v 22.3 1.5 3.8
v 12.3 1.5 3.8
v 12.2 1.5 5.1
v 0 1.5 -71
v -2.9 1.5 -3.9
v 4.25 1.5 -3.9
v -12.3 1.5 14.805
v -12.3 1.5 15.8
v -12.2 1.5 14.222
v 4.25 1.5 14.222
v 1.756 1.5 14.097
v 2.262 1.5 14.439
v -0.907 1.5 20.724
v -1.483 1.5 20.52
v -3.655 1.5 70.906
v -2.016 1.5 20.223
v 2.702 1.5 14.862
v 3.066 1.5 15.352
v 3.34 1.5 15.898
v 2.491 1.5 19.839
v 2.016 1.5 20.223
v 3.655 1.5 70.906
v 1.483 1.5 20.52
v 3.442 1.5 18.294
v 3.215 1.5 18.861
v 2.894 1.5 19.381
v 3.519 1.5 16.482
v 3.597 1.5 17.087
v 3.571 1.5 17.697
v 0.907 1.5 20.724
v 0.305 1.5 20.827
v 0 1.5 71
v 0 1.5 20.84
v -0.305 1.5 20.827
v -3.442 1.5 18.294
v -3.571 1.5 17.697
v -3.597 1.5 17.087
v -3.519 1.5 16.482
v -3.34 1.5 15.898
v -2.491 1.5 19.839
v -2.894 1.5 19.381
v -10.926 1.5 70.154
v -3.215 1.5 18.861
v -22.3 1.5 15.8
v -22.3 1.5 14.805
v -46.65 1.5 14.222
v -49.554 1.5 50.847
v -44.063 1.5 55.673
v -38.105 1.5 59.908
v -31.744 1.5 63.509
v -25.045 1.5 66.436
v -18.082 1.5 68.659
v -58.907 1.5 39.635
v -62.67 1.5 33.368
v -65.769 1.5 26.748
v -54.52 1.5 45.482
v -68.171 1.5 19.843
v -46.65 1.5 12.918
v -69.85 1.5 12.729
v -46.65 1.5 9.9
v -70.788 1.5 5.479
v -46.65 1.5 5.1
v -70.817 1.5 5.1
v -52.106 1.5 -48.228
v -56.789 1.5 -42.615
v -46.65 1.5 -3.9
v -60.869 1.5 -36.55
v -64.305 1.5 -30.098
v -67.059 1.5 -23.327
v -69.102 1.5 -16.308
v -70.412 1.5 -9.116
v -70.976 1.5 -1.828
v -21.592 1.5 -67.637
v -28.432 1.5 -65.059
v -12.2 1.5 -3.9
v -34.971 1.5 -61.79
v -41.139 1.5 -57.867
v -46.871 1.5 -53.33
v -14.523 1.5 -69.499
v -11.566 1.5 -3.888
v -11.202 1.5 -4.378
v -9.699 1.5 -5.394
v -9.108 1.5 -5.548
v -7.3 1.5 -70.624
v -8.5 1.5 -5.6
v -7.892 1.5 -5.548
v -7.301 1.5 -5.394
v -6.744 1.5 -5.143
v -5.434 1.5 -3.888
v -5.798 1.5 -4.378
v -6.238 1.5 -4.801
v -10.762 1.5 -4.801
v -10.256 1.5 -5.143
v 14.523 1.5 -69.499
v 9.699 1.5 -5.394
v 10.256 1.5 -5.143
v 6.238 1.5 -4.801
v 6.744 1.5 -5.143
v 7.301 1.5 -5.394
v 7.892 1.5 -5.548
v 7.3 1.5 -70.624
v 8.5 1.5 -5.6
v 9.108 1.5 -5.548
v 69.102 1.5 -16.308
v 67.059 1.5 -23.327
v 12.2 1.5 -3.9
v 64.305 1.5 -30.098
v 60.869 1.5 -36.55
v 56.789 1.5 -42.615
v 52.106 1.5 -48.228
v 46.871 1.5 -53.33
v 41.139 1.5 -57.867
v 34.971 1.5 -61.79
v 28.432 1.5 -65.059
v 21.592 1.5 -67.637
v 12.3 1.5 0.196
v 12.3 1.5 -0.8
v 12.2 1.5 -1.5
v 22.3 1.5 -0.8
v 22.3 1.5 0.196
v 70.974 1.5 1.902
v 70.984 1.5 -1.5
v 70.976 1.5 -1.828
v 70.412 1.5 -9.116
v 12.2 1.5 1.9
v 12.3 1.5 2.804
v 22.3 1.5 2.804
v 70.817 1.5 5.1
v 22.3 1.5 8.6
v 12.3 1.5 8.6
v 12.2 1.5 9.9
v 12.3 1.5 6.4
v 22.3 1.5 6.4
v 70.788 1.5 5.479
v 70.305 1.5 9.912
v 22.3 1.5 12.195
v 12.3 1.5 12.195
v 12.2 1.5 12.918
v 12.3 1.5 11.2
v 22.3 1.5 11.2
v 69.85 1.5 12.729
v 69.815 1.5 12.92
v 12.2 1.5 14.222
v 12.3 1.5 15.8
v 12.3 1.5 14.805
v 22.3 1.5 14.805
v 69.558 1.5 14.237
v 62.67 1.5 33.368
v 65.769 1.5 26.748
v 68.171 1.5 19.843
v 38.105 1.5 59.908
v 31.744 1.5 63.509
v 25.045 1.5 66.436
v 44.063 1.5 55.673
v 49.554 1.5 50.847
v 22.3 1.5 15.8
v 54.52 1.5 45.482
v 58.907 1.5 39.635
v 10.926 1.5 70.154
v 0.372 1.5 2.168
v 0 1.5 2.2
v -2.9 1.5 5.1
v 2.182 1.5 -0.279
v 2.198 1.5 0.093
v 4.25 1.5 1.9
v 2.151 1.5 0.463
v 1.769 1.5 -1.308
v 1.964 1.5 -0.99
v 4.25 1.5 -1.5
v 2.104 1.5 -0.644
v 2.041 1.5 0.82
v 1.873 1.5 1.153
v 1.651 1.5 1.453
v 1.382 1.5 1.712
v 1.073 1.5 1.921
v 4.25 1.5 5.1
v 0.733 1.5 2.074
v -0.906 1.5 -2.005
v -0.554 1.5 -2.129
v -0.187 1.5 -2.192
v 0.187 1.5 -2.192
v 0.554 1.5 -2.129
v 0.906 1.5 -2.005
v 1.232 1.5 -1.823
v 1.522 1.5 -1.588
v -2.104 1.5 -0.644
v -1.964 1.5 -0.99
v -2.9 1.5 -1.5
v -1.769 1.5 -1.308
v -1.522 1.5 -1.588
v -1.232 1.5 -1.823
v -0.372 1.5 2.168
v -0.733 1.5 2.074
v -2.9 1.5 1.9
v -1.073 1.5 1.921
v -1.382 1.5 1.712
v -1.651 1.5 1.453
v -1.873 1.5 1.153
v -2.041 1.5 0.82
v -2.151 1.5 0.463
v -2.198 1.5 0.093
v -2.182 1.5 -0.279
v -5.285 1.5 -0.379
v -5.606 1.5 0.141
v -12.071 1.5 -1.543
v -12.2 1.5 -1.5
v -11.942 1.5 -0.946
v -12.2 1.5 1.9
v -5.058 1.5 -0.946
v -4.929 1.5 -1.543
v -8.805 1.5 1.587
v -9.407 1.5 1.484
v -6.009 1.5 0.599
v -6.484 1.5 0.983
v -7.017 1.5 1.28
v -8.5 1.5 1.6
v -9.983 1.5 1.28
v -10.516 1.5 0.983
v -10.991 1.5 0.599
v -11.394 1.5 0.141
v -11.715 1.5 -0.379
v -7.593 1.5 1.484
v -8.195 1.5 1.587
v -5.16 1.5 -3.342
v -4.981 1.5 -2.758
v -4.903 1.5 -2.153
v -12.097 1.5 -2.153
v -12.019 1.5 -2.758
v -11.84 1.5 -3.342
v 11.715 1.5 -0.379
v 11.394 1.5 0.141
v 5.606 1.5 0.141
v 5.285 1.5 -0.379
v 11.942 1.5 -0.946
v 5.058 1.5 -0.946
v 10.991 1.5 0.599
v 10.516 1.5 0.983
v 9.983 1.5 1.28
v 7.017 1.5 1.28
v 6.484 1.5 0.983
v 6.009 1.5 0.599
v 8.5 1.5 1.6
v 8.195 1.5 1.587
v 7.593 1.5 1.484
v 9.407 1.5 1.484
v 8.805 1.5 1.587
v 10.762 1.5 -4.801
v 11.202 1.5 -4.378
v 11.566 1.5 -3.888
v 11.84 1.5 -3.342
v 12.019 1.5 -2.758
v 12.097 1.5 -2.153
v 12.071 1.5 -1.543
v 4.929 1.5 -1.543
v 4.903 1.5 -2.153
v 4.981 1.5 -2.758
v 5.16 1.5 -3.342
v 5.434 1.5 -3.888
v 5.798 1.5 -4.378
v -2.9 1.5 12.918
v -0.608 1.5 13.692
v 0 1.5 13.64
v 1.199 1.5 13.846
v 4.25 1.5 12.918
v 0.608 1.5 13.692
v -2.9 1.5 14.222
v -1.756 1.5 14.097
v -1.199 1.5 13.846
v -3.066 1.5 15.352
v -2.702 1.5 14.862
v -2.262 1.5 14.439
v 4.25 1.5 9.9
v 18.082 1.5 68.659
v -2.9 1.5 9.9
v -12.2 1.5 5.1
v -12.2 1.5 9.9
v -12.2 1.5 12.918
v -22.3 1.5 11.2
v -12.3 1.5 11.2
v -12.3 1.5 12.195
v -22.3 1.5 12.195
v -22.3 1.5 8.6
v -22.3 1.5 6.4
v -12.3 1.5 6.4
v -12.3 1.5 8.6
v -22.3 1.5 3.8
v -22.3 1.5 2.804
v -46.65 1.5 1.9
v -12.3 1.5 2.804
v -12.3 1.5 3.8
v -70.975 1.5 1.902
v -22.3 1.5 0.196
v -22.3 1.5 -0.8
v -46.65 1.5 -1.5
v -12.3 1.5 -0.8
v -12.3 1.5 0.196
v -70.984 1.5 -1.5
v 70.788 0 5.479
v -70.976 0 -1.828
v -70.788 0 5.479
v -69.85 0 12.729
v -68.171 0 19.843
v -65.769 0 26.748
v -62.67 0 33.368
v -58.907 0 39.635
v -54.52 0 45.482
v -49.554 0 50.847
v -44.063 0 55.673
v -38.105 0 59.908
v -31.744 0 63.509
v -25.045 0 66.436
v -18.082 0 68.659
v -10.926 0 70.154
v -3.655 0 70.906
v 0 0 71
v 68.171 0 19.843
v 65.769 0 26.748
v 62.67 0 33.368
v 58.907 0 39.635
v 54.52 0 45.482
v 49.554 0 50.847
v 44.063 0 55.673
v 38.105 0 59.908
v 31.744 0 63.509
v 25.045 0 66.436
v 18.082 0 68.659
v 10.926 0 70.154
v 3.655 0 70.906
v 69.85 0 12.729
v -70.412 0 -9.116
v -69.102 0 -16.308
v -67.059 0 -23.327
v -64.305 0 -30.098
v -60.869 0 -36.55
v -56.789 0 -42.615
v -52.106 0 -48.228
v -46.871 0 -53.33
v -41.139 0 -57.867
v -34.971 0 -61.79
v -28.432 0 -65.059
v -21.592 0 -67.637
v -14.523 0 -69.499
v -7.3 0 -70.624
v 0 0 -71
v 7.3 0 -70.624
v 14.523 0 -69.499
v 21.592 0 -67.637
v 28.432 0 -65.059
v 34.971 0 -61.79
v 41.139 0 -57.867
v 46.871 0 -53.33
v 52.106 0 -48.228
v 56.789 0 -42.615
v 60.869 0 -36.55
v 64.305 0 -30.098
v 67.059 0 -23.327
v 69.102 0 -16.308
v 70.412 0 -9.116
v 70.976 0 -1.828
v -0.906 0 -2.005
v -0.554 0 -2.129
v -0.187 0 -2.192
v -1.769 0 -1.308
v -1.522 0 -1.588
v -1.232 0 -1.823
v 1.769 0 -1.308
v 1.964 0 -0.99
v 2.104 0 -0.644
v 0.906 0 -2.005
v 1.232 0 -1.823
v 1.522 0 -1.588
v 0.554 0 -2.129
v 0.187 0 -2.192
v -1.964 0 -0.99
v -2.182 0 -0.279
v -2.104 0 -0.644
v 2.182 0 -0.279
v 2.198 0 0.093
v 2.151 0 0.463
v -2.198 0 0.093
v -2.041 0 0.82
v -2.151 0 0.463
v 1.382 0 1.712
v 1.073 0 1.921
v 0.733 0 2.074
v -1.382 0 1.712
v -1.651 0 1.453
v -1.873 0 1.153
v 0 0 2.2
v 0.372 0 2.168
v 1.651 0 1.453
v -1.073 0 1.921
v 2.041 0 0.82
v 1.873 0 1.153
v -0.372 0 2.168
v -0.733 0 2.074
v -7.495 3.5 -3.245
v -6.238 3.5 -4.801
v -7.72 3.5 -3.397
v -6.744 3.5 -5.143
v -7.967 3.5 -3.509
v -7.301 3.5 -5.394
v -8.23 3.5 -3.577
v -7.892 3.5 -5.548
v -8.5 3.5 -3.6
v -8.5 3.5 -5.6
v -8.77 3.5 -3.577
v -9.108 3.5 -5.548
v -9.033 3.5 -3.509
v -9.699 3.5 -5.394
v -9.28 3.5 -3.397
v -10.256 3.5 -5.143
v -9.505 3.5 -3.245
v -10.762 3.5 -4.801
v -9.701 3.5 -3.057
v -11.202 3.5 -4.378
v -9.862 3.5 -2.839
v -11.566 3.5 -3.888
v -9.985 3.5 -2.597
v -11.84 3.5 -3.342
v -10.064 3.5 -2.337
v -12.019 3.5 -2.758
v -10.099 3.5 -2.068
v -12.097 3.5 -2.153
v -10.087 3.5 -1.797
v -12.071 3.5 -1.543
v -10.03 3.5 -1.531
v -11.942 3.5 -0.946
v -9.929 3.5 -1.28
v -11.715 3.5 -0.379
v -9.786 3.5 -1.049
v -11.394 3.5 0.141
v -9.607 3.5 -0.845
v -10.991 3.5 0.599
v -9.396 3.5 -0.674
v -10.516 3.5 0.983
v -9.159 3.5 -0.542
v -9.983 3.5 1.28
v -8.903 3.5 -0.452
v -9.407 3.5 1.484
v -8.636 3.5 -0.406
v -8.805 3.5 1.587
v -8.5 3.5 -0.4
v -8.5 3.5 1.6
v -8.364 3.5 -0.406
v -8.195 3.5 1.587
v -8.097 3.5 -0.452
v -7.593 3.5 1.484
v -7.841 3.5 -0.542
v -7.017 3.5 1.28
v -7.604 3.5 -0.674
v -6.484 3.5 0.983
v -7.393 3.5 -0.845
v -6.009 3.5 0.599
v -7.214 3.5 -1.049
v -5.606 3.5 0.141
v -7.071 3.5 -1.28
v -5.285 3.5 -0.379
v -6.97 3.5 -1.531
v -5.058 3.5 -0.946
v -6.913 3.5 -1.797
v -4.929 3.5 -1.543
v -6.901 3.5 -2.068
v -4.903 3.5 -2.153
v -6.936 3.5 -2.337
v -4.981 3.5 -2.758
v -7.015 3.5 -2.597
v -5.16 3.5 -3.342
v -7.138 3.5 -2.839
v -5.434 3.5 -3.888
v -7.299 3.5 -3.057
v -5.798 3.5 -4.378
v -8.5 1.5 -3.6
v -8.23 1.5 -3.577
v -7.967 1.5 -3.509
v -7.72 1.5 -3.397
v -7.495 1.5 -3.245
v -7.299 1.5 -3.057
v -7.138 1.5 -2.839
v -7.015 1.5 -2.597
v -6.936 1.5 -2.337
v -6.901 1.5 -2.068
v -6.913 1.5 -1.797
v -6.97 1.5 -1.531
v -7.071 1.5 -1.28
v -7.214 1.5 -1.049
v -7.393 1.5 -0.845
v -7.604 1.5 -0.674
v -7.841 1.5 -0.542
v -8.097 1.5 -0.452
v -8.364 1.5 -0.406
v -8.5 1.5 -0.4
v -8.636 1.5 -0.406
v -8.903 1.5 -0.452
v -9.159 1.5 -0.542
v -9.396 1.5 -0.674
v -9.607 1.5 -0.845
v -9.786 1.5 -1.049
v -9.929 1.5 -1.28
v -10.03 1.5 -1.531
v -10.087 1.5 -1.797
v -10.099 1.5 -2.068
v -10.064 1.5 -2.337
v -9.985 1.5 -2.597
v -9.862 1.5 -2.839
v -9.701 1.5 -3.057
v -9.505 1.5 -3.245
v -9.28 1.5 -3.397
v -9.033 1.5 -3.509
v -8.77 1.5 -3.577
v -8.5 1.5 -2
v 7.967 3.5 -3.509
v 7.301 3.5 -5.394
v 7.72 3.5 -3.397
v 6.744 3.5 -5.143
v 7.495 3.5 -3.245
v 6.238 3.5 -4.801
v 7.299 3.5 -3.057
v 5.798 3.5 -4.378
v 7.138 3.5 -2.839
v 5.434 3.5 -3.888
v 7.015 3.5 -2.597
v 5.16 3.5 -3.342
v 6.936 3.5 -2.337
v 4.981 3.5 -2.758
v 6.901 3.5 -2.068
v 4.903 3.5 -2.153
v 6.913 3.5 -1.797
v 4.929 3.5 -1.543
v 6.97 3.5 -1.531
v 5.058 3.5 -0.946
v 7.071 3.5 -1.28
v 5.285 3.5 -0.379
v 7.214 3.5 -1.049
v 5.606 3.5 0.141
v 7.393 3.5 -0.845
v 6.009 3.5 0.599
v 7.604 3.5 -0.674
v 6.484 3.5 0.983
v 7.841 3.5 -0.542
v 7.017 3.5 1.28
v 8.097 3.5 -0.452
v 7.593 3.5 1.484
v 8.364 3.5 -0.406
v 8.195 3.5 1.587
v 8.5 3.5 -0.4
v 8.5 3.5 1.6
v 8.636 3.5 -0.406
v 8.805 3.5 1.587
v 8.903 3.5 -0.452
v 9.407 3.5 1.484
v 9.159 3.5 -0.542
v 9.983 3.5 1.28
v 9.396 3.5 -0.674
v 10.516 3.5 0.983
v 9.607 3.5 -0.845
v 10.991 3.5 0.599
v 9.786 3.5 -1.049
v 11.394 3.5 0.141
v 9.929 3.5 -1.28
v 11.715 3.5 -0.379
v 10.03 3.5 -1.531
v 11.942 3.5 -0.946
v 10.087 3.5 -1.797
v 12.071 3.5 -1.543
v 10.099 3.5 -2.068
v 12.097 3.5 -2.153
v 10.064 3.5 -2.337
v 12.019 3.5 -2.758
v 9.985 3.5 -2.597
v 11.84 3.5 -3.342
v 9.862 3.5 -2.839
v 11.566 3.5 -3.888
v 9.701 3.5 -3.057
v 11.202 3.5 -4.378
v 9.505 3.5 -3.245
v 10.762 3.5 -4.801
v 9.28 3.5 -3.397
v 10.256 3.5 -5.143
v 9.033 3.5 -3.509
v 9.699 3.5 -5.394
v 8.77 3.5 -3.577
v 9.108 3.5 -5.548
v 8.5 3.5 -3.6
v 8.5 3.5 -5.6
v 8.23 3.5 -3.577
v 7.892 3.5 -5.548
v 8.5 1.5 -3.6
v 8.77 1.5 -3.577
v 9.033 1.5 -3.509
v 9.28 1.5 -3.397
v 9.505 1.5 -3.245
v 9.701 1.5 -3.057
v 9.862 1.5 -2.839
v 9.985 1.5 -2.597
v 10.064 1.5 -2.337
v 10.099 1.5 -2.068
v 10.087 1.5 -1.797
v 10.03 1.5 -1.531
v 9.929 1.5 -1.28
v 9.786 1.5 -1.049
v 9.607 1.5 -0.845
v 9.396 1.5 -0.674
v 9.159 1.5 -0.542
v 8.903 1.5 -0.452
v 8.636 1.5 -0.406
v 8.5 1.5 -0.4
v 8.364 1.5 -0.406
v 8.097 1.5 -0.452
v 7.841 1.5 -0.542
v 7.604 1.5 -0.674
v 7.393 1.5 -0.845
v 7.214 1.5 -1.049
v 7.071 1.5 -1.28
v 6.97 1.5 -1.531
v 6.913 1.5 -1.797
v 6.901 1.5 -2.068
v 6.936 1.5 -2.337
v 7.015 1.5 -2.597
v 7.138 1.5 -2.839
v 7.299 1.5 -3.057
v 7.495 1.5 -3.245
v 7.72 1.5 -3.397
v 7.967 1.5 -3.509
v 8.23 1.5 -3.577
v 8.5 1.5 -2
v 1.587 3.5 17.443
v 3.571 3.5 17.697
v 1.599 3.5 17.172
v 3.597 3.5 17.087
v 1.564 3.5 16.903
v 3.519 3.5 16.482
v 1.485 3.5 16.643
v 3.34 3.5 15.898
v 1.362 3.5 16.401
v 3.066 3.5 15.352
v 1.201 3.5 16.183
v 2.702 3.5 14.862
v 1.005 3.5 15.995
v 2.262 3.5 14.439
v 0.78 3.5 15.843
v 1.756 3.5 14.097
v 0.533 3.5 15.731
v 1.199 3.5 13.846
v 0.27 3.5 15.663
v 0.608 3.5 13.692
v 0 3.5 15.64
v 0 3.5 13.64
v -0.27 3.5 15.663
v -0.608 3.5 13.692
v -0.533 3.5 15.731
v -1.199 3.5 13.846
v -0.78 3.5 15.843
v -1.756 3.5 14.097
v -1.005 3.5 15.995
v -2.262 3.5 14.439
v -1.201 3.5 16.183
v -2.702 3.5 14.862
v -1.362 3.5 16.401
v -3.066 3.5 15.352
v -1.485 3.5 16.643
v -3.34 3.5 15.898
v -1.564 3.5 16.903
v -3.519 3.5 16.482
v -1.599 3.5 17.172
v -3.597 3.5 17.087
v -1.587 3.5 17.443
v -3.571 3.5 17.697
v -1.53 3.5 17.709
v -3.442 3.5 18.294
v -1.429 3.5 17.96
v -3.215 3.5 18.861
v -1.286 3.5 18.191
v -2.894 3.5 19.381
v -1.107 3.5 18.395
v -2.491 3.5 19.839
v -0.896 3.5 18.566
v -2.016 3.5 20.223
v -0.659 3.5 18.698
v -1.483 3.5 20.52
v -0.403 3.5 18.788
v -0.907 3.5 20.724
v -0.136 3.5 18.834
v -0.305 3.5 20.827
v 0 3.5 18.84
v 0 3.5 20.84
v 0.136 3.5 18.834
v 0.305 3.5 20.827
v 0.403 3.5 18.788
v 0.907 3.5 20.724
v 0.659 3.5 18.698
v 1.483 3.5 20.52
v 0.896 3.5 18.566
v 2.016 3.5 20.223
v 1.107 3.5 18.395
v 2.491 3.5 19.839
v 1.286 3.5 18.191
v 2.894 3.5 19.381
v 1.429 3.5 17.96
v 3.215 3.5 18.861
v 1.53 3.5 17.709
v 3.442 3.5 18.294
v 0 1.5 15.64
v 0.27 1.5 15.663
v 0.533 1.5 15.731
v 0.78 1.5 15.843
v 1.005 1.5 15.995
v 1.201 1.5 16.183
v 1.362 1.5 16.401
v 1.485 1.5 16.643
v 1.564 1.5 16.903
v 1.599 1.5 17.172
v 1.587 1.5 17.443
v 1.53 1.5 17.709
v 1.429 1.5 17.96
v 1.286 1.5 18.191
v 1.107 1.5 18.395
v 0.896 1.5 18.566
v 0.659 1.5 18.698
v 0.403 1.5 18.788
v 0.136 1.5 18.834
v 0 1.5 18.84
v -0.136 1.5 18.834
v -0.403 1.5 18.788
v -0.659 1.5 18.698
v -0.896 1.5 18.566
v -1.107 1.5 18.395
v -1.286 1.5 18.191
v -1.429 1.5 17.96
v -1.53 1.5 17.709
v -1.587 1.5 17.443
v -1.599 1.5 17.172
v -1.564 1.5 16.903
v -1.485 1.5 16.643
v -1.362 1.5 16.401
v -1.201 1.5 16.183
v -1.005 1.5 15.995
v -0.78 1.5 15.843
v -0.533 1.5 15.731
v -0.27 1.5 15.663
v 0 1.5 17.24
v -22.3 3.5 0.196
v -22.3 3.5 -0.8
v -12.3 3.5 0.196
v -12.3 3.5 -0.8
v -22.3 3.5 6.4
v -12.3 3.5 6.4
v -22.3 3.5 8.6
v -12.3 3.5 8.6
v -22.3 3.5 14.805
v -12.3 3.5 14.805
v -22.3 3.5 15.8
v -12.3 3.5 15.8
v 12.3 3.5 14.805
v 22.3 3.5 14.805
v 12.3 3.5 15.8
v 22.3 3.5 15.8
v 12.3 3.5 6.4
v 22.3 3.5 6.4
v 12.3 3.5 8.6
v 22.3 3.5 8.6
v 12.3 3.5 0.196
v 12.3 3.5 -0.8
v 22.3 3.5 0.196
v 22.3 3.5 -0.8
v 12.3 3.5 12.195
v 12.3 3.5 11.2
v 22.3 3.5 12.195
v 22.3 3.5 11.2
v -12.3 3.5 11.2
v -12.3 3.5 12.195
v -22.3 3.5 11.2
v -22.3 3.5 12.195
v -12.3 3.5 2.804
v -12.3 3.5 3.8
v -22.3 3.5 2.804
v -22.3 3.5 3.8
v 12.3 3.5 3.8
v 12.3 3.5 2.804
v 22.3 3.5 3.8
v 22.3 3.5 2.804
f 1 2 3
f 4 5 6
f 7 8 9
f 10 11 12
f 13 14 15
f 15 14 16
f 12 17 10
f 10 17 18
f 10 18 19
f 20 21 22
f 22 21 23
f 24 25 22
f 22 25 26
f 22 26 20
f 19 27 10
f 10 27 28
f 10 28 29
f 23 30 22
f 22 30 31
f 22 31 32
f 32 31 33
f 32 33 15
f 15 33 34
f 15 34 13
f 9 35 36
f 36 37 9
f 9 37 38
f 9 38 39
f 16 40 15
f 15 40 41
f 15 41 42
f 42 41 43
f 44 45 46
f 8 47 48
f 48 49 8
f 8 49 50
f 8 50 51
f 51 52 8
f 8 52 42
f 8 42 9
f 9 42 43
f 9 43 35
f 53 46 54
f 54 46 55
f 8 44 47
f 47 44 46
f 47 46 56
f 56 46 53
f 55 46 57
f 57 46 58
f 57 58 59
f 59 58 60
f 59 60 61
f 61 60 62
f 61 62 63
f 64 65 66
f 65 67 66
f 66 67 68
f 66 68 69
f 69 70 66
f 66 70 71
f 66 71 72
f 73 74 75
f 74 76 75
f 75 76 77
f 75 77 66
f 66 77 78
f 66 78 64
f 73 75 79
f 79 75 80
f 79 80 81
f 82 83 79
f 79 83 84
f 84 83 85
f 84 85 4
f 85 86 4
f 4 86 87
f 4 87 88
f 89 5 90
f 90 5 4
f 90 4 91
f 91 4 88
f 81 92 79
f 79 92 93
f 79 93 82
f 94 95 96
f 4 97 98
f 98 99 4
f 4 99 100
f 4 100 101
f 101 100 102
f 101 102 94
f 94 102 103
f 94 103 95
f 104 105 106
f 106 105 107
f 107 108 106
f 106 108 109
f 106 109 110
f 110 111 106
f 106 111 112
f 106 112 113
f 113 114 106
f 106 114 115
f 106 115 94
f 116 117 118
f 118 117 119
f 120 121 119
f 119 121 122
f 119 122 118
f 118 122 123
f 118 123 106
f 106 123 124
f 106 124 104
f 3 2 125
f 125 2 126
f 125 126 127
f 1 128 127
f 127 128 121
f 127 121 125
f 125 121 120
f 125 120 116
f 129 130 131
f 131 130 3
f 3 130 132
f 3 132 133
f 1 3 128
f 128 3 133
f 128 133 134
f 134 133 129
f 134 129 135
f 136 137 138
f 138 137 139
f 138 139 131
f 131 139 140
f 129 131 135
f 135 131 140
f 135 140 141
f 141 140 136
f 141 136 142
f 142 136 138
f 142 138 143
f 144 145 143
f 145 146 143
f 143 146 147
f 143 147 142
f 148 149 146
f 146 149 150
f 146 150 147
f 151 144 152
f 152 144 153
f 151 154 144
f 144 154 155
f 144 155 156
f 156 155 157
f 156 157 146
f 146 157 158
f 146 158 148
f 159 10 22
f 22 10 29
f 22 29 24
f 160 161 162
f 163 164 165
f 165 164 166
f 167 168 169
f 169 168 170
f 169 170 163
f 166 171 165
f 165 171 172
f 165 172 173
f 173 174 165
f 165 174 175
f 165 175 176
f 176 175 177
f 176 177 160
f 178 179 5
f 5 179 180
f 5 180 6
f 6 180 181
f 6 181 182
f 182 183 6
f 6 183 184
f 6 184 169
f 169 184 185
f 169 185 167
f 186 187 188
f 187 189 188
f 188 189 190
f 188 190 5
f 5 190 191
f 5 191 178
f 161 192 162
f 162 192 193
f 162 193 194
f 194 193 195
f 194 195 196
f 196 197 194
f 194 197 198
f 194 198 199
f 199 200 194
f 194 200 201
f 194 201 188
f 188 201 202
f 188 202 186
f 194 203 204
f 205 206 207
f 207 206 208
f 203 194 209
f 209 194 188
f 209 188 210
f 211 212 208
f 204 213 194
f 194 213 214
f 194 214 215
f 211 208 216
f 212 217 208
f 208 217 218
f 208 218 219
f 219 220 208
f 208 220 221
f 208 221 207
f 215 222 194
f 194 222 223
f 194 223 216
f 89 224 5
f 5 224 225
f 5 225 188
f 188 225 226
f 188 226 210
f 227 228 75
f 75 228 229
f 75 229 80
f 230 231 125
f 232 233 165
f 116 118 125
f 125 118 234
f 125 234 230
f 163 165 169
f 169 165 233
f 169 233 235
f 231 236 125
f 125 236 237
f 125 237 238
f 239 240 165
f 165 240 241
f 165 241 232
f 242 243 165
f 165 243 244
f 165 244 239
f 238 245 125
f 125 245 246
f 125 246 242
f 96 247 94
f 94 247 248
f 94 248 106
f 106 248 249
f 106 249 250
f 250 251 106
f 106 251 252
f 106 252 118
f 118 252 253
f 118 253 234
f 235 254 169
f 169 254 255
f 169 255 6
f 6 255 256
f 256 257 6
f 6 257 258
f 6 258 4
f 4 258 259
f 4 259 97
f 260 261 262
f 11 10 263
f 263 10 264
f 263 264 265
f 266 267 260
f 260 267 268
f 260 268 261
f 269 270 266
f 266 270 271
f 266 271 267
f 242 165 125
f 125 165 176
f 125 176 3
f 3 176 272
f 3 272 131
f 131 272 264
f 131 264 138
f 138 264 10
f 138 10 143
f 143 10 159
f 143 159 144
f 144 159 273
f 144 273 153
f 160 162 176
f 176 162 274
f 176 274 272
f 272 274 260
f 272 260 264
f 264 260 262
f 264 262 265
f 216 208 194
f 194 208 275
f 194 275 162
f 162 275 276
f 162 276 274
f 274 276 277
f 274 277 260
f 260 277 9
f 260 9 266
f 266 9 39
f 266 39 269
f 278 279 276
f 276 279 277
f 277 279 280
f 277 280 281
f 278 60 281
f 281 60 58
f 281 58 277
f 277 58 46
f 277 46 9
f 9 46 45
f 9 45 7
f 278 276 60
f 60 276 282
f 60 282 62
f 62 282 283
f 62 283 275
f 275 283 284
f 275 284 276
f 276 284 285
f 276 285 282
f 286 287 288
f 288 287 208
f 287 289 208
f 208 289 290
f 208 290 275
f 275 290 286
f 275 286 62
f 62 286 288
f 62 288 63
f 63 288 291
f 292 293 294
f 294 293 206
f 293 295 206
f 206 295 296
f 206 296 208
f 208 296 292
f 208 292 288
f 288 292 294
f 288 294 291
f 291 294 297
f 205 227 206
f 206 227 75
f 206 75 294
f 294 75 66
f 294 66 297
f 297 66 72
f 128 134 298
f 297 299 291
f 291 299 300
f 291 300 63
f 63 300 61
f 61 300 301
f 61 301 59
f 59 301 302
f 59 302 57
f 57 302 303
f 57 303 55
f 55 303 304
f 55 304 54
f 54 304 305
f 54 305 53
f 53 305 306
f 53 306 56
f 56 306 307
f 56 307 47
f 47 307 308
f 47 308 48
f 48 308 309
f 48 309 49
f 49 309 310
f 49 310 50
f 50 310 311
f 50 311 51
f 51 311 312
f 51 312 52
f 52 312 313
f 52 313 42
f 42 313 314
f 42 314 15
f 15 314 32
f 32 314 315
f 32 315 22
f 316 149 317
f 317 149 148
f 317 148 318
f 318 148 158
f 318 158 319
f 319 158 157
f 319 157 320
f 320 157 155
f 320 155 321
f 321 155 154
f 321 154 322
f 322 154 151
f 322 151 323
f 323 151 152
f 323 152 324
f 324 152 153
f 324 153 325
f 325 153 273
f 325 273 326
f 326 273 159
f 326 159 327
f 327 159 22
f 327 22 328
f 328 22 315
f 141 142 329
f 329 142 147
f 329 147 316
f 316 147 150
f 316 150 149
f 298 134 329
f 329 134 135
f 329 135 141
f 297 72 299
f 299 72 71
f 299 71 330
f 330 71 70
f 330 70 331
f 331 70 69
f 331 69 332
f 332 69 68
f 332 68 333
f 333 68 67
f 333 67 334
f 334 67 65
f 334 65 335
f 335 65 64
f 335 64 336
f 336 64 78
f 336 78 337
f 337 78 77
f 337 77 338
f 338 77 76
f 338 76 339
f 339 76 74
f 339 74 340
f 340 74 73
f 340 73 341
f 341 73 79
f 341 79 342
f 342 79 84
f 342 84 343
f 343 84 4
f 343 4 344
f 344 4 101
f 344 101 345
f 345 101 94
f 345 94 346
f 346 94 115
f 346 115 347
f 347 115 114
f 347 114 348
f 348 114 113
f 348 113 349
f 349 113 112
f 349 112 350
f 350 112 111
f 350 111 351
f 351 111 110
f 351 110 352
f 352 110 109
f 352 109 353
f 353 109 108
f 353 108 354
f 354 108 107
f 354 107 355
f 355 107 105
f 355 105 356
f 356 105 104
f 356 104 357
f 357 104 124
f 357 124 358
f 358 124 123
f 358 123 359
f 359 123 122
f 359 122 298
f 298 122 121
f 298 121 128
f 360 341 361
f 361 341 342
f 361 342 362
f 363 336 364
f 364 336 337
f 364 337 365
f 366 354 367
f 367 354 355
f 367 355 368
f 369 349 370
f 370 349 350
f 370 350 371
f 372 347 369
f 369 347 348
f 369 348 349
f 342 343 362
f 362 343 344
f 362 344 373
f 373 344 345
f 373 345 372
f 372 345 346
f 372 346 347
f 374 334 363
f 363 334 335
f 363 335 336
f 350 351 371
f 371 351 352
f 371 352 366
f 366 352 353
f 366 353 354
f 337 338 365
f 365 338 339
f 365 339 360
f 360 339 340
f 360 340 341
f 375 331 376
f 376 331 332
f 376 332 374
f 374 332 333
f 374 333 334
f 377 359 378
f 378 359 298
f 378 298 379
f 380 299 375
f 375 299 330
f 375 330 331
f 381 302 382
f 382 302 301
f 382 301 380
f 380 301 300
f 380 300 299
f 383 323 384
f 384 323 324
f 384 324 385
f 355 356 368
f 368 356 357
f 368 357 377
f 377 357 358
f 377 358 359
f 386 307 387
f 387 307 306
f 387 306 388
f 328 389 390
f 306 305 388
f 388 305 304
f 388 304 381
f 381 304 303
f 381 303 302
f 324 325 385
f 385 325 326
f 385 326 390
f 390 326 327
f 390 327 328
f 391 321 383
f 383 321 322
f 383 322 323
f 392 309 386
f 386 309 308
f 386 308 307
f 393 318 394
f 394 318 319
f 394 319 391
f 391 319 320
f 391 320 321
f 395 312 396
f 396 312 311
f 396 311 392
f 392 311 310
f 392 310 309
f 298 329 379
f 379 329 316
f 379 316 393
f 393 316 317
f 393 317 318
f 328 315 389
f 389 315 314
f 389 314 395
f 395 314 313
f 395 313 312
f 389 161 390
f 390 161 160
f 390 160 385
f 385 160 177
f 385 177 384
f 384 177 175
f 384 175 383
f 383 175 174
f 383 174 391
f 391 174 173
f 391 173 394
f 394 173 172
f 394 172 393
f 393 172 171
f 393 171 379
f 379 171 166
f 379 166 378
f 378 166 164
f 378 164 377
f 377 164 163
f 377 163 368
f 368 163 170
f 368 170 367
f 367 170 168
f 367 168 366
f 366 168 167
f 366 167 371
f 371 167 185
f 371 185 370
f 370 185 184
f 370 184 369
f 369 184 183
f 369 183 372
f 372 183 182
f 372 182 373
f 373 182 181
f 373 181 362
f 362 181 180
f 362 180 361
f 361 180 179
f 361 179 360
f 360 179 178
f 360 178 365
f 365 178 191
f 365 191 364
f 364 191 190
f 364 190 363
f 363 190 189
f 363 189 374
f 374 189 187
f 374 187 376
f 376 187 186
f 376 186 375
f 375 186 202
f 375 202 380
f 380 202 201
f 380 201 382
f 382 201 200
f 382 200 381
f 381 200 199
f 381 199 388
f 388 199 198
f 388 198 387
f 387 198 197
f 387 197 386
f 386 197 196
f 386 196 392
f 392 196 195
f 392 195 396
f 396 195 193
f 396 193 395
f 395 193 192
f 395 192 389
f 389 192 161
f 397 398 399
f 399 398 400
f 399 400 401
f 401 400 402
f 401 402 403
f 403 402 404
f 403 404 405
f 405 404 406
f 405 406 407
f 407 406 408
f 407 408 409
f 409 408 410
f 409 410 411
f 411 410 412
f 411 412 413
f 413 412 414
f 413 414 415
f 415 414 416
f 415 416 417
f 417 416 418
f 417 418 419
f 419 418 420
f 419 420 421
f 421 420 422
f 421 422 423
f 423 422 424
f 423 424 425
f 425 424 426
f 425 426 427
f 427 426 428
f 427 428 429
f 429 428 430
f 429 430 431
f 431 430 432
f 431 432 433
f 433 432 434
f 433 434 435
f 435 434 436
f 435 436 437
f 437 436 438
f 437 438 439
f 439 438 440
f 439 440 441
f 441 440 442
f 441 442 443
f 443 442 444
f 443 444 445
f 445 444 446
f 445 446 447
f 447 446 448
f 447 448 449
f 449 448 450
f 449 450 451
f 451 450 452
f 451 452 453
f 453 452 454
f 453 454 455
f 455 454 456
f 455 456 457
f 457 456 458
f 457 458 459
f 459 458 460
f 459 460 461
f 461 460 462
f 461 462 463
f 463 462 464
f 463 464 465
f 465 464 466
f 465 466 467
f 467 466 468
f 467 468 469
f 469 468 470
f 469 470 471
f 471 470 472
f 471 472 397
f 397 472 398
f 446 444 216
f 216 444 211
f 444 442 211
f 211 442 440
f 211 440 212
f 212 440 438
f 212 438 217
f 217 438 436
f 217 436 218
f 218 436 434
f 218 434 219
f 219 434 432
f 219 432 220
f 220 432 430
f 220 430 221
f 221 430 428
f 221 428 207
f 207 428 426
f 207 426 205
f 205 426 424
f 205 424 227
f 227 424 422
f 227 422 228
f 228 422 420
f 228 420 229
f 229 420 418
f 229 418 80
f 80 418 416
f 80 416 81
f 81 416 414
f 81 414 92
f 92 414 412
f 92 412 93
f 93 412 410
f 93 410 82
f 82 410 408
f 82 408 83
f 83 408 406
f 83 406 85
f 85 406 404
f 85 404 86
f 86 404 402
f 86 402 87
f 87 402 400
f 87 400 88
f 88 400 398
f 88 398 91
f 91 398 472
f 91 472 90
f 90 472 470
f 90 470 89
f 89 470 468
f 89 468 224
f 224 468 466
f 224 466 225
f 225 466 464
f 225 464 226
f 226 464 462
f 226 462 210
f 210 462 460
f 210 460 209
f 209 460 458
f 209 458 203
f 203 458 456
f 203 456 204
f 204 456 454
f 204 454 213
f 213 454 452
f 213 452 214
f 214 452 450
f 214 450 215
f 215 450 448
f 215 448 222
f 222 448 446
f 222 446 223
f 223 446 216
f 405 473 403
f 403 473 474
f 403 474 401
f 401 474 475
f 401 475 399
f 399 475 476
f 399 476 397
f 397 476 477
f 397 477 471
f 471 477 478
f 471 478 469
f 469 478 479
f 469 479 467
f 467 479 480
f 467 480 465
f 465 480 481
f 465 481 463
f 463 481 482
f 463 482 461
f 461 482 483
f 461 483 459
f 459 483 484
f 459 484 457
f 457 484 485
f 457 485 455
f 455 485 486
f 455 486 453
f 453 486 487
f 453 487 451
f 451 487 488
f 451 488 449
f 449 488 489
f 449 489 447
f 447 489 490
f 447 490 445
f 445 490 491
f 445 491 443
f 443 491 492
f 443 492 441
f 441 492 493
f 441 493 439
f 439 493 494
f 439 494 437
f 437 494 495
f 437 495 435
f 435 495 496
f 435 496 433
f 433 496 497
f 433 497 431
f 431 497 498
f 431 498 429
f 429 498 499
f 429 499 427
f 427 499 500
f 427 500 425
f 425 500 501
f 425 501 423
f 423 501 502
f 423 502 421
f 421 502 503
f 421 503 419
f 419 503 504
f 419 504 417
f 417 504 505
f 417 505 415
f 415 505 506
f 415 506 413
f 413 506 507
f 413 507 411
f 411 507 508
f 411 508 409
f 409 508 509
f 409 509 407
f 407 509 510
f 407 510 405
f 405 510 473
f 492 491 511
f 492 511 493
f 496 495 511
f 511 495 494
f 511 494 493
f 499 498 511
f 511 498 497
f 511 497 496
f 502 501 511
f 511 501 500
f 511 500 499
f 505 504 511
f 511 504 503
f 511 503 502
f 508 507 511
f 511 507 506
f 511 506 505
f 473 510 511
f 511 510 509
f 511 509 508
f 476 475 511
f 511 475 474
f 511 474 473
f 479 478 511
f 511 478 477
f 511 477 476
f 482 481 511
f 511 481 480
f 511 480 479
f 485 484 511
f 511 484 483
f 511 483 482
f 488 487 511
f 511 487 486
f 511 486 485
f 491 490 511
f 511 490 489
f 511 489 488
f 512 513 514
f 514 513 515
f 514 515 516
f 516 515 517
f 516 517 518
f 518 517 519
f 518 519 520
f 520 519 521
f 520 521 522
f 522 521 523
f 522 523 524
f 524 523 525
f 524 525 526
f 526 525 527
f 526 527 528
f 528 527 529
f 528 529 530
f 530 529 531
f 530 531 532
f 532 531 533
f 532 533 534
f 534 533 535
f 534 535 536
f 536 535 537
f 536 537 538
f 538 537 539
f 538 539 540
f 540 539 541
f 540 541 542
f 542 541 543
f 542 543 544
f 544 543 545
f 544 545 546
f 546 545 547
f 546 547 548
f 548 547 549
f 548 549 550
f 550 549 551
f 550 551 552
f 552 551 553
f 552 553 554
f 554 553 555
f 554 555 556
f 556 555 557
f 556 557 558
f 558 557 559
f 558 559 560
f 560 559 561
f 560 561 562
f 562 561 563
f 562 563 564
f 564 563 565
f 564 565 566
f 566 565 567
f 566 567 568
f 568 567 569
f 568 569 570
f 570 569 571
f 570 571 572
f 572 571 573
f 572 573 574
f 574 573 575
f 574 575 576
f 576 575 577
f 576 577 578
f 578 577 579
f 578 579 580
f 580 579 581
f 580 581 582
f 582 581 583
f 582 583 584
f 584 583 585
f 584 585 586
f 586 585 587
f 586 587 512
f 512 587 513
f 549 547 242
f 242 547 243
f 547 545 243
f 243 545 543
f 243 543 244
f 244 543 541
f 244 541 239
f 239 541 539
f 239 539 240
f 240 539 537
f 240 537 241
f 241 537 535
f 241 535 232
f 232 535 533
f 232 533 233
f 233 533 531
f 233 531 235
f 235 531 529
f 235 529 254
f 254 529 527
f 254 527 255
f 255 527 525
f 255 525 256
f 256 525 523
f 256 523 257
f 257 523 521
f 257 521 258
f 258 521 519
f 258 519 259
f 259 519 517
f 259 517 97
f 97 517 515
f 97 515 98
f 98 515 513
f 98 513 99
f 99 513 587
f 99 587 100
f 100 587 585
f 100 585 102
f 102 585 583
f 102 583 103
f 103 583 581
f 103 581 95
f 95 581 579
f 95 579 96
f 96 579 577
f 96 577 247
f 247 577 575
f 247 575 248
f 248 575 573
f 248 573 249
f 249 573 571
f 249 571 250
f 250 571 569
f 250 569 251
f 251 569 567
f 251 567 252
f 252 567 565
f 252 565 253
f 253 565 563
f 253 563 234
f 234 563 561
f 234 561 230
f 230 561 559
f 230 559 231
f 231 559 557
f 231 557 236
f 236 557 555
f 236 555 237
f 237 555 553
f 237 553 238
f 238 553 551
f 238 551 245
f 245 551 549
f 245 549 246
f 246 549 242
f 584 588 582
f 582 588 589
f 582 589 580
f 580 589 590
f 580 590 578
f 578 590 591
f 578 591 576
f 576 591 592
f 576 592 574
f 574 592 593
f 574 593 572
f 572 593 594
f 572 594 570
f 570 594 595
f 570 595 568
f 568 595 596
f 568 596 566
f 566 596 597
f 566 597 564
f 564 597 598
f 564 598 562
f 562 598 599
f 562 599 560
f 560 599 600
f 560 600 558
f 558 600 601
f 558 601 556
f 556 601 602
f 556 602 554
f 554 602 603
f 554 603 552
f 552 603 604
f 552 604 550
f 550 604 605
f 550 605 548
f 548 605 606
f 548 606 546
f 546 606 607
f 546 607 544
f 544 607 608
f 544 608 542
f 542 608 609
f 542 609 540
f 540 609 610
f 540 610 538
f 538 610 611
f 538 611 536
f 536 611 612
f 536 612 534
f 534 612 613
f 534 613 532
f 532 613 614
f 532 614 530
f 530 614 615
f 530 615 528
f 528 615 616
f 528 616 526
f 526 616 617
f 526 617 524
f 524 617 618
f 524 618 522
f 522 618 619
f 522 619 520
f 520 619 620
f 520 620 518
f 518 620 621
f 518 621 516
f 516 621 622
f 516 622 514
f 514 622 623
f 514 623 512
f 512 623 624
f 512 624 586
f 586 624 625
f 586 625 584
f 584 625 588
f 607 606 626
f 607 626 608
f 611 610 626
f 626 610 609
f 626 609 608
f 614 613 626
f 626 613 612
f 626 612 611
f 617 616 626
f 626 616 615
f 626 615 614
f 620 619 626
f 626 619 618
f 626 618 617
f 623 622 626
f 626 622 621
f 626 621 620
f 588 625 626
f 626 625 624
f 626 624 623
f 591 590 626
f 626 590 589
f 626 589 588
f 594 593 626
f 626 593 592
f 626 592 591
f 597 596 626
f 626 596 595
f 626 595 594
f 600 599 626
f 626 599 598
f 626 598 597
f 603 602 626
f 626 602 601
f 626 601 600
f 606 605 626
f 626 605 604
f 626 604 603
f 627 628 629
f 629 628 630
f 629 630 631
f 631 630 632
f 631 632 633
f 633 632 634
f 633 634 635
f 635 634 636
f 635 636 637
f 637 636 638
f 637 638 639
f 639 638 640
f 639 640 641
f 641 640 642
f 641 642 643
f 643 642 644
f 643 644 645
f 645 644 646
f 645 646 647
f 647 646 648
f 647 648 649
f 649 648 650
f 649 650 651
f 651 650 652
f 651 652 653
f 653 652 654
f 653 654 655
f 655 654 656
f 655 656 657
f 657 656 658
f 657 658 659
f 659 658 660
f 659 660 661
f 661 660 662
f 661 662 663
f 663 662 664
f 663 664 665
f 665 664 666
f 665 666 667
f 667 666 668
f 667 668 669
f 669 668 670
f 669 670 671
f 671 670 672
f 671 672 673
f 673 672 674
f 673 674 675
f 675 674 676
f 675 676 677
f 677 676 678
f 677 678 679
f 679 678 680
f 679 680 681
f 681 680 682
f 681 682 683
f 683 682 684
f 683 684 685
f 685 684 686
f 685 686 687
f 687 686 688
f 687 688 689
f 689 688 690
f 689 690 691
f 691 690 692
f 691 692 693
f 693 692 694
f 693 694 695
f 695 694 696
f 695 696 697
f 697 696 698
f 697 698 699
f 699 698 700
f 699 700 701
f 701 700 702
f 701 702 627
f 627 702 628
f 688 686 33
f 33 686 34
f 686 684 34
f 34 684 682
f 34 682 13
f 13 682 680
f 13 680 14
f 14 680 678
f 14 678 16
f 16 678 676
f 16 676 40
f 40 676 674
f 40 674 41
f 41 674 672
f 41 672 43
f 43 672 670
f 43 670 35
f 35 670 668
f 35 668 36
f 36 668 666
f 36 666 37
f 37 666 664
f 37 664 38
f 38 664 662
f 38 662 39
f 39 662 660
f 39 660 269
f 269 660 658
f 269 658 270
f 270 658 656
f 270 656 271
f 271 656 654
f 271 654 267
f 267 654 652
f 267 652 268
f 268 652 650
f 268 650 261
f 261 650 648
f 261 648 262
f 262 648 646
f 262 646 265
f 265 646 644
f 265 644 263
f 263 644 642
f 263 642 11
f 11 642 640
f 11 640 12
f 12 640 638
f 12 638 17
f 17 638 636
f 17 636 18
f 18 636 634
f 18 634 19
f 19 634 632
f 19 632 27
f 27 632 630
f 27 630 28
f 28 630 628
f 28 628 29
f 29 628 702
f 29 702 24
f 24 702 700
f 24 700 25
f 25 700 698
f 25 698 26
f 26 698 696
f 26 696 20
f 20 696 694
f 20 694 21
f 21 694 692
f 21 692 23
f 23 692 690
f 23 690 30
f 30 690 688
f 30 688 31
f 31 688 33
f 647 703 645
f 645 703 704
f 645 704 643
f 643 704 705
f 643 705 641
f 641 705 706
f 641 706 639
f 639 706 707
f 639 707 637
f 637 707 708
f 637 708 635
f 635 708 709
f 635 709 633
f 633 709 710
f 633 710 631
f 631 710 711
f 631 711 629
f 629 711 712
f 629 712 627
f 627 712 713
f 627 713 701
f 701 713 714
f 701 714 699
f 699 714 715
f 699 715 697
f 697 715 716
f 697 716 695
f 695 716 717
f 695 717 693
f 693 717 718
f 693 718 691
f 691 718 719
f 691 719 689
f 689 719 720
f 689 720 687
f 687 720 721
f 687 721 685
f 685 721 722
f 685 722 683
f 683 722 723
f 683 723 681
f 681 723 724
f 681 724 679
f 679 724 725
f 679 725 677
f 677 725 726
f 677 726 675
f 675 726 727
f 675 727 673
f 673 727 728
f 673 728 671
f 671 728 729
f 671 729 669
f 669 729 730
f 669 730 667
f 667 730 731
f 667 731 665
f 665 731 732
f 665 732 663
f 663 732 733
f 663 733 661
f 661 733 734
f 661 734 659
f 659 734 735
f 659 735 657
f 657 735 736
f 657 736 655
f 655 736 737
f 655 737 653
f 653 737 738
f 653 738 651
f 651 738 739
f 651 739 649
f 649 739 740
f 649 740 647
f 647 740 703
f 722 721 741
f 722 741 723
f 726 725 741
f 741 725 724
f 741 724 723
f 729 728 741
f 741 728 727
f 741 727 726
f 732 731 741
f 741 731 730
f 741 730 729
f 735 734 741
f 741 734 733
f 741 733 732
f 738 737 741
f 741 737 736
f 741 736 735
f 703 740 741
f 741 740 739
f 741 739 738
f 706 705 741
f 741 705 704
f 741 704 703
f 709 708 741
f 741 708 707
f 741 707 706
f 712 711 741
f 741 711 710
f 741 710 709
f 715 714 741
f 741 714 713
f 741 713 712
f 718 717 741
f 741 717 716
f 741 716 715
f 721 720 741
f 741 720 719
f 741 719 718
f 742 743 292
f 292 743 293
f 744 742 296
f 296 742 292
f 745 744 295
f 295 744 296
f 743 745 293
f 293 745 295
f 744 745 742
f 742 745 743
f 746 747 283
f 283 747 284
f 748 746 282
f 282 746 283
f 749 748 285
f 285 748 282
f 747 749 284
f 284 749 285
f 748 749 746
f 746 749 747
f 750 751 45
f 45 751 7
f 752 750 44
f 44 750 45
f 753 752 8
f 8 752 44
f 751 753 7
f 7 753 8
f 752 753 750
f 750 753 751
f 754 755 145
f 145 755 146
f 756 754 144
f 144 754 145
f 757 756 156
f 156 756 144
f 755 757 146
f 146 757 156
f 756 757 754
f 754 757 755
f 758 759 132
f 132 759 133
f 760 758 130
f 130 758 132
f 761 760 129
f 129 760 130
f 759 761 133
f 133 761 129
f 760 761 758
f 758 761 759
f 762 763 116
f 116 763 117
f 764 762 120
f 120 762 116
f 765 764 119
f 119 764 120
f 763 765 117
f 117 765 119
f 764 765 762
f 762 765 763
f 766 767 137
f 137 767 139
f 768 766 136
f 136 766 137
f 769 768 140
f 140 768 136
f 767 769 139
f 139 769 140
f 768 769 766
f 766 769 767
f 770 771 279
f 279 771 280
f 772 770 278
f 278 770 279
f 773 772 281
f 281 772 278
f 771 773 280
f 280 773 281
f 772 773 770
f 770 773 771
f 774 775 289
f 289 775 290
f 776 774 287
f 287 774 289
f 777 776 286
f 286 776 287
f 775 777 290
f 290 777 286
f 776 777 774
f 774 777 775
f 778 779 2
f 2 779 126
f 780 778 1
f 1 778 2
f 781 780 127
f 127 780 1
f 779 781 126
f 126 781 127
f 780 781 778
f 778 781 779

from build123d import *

# Parameters (mm, degrees)
SKETCH1_R           = 71
BOSS_EXTRUDE1_DEPTH = 1.5
SKETCH2_R           = 2.2
CUT_EXTRUDE1_DEPTH  = 14.5
SKETCH3_R           = 3.6
SKETCH3_R_2         = 1.6
BOSS_EXTRUDE2_DEPTH = 2
SKETCH4_W           = 10
SKETCH4_H           = 2.2
SKETCH4_H_2         = 0.995039414
SKETCH4_H_3         = 0.995528857
BOSS_EXTRUDE3_DEPTH = 2


with BuildPart() as part:
    # Sketch1 → Boss-Extrude1 (new body)
    with BuildSketch(Plane(origin=(0, 0, 0), x_dir=(1, 0, 0), z_dir=(0, 1, 0))):
        with Locations(Location((0, 0, 0), (0, 0, 270))):
            Circle(SKETCH1_R)
    extrude(amount=BOSS_EXTRUDE1_DEPTH)

    # Sketch2 → Cut-Extrude1 (cut)
    with BuildSketch(Plane(origin=(0, 1.5, 0), x_dir=(1, 0, 0), z_dir=(0, 1, 0))):
        with Locations(Location((0, 0, 0), (0, 0, 270))):
            Circle(SKETCH2_R)
    extrude(amount=-CUT_EXTRUDE1_DEPTH, mode=Mode.SUBTRACT)

    # Sketch3 → Boss-Extrude2 (add)
    # profile 1 of 3: a face of its own
    with BuildSketch(Plane(origin=(0, 1.5, 0), x_dir=(1, 0, 0), z_dir=(0, 1, 0))):
        with Locations(Location((-8.5, 2, 0), (0, 0, 270))):
            Circle(SKETCH3_R)
        with Locations(Location((-8.5, 2, 0), (0, 0, 270))):
            Circle(SKETCH3_R_2, mode=Mode.SUBTRACT)
    # profile 2 of 3: a face of its own
    with BuildSketch(Plane(origin=(0, 1.5, 0), x_dir=(1, 0, 0), z_dir=(0, 1, 0))):
        with Locations(Location((8.5, 2, 0), (0, 0, 270))):
            Circle(SKETCH3_R)
        with Locations(Location((8.5, 2, 0), (0, 0, 270))):
            Circle(SKETCH3_R_2, mode=Mode.SUBTRACT)
    # profile 3 of 3: a face of its own
    with BuildSketch(Plane(origin=(0, 1.5, 0), x_dir=(1, 0, 0), z_dir=(0, 1, 0))):
        with Locations(Location((0, -17.24, 0), (0, 0, 270))):
            Circle(SKETCH3_R)
        with Locations(Location((0, -17.24, 0), (0, 0, 270))):
            Circle(SKETCH3_R_2, mode=Mode.SUBTRACT)
    extrude(amount=BOSS_EXTRUDE2_DEPTH)

    # Sketch4 → Boss-Extrude3 (add)
    with BuildSketch(Plane(origin=(0, 1.5, 0), x_dir=(1, 0, 0), z_dir=(0, 1, 0))):
        with Locations((-17.3, -7.5)):
            Rectangle(SKETCH4_W, SKETCH4_H)
        with Locations((-17.3, -11.697519707)):
            Rectangle(SKETCH4_W, SKETCH4_H_2)
        with Locations((-17.3, -3.302235572)):
            Rectangle(SKETCH4_W, SKETCH4_H_3)
        with Locations((-17.3, 0.302235572)):
            Rectangle(SKETCH4_W, SKETCH4_H_3)
        with Locations((-17.3, -15.302480293)):
            Rectangle(SKETCH4_W, SKETCH4_H_2)
        with Locations((17.3, -15.302480293)):
            Rectangle(SKETCH4_W, SKETCH4_H_2)
        with Locations((17.3, -11.697519707)):
            Rectangle(SKETCH4_W, SKETCH4_H_2)
        with Locations((17.3, -7.5)):
            Rectangle(SKETCH4_W, SKETCH4_H)
        with Locations((17.3, -3.302235572)):
            Rectangle(SKETCH4_W, SKETCH4_H_3)
        with Locations((17.3, 0.302235572)):
            Rectangle(SKETCH4_W, SKETCH4_H_3)
    extrude(amount=BOSS_EXTRUDE3_DEPTH)


solid = part.part
